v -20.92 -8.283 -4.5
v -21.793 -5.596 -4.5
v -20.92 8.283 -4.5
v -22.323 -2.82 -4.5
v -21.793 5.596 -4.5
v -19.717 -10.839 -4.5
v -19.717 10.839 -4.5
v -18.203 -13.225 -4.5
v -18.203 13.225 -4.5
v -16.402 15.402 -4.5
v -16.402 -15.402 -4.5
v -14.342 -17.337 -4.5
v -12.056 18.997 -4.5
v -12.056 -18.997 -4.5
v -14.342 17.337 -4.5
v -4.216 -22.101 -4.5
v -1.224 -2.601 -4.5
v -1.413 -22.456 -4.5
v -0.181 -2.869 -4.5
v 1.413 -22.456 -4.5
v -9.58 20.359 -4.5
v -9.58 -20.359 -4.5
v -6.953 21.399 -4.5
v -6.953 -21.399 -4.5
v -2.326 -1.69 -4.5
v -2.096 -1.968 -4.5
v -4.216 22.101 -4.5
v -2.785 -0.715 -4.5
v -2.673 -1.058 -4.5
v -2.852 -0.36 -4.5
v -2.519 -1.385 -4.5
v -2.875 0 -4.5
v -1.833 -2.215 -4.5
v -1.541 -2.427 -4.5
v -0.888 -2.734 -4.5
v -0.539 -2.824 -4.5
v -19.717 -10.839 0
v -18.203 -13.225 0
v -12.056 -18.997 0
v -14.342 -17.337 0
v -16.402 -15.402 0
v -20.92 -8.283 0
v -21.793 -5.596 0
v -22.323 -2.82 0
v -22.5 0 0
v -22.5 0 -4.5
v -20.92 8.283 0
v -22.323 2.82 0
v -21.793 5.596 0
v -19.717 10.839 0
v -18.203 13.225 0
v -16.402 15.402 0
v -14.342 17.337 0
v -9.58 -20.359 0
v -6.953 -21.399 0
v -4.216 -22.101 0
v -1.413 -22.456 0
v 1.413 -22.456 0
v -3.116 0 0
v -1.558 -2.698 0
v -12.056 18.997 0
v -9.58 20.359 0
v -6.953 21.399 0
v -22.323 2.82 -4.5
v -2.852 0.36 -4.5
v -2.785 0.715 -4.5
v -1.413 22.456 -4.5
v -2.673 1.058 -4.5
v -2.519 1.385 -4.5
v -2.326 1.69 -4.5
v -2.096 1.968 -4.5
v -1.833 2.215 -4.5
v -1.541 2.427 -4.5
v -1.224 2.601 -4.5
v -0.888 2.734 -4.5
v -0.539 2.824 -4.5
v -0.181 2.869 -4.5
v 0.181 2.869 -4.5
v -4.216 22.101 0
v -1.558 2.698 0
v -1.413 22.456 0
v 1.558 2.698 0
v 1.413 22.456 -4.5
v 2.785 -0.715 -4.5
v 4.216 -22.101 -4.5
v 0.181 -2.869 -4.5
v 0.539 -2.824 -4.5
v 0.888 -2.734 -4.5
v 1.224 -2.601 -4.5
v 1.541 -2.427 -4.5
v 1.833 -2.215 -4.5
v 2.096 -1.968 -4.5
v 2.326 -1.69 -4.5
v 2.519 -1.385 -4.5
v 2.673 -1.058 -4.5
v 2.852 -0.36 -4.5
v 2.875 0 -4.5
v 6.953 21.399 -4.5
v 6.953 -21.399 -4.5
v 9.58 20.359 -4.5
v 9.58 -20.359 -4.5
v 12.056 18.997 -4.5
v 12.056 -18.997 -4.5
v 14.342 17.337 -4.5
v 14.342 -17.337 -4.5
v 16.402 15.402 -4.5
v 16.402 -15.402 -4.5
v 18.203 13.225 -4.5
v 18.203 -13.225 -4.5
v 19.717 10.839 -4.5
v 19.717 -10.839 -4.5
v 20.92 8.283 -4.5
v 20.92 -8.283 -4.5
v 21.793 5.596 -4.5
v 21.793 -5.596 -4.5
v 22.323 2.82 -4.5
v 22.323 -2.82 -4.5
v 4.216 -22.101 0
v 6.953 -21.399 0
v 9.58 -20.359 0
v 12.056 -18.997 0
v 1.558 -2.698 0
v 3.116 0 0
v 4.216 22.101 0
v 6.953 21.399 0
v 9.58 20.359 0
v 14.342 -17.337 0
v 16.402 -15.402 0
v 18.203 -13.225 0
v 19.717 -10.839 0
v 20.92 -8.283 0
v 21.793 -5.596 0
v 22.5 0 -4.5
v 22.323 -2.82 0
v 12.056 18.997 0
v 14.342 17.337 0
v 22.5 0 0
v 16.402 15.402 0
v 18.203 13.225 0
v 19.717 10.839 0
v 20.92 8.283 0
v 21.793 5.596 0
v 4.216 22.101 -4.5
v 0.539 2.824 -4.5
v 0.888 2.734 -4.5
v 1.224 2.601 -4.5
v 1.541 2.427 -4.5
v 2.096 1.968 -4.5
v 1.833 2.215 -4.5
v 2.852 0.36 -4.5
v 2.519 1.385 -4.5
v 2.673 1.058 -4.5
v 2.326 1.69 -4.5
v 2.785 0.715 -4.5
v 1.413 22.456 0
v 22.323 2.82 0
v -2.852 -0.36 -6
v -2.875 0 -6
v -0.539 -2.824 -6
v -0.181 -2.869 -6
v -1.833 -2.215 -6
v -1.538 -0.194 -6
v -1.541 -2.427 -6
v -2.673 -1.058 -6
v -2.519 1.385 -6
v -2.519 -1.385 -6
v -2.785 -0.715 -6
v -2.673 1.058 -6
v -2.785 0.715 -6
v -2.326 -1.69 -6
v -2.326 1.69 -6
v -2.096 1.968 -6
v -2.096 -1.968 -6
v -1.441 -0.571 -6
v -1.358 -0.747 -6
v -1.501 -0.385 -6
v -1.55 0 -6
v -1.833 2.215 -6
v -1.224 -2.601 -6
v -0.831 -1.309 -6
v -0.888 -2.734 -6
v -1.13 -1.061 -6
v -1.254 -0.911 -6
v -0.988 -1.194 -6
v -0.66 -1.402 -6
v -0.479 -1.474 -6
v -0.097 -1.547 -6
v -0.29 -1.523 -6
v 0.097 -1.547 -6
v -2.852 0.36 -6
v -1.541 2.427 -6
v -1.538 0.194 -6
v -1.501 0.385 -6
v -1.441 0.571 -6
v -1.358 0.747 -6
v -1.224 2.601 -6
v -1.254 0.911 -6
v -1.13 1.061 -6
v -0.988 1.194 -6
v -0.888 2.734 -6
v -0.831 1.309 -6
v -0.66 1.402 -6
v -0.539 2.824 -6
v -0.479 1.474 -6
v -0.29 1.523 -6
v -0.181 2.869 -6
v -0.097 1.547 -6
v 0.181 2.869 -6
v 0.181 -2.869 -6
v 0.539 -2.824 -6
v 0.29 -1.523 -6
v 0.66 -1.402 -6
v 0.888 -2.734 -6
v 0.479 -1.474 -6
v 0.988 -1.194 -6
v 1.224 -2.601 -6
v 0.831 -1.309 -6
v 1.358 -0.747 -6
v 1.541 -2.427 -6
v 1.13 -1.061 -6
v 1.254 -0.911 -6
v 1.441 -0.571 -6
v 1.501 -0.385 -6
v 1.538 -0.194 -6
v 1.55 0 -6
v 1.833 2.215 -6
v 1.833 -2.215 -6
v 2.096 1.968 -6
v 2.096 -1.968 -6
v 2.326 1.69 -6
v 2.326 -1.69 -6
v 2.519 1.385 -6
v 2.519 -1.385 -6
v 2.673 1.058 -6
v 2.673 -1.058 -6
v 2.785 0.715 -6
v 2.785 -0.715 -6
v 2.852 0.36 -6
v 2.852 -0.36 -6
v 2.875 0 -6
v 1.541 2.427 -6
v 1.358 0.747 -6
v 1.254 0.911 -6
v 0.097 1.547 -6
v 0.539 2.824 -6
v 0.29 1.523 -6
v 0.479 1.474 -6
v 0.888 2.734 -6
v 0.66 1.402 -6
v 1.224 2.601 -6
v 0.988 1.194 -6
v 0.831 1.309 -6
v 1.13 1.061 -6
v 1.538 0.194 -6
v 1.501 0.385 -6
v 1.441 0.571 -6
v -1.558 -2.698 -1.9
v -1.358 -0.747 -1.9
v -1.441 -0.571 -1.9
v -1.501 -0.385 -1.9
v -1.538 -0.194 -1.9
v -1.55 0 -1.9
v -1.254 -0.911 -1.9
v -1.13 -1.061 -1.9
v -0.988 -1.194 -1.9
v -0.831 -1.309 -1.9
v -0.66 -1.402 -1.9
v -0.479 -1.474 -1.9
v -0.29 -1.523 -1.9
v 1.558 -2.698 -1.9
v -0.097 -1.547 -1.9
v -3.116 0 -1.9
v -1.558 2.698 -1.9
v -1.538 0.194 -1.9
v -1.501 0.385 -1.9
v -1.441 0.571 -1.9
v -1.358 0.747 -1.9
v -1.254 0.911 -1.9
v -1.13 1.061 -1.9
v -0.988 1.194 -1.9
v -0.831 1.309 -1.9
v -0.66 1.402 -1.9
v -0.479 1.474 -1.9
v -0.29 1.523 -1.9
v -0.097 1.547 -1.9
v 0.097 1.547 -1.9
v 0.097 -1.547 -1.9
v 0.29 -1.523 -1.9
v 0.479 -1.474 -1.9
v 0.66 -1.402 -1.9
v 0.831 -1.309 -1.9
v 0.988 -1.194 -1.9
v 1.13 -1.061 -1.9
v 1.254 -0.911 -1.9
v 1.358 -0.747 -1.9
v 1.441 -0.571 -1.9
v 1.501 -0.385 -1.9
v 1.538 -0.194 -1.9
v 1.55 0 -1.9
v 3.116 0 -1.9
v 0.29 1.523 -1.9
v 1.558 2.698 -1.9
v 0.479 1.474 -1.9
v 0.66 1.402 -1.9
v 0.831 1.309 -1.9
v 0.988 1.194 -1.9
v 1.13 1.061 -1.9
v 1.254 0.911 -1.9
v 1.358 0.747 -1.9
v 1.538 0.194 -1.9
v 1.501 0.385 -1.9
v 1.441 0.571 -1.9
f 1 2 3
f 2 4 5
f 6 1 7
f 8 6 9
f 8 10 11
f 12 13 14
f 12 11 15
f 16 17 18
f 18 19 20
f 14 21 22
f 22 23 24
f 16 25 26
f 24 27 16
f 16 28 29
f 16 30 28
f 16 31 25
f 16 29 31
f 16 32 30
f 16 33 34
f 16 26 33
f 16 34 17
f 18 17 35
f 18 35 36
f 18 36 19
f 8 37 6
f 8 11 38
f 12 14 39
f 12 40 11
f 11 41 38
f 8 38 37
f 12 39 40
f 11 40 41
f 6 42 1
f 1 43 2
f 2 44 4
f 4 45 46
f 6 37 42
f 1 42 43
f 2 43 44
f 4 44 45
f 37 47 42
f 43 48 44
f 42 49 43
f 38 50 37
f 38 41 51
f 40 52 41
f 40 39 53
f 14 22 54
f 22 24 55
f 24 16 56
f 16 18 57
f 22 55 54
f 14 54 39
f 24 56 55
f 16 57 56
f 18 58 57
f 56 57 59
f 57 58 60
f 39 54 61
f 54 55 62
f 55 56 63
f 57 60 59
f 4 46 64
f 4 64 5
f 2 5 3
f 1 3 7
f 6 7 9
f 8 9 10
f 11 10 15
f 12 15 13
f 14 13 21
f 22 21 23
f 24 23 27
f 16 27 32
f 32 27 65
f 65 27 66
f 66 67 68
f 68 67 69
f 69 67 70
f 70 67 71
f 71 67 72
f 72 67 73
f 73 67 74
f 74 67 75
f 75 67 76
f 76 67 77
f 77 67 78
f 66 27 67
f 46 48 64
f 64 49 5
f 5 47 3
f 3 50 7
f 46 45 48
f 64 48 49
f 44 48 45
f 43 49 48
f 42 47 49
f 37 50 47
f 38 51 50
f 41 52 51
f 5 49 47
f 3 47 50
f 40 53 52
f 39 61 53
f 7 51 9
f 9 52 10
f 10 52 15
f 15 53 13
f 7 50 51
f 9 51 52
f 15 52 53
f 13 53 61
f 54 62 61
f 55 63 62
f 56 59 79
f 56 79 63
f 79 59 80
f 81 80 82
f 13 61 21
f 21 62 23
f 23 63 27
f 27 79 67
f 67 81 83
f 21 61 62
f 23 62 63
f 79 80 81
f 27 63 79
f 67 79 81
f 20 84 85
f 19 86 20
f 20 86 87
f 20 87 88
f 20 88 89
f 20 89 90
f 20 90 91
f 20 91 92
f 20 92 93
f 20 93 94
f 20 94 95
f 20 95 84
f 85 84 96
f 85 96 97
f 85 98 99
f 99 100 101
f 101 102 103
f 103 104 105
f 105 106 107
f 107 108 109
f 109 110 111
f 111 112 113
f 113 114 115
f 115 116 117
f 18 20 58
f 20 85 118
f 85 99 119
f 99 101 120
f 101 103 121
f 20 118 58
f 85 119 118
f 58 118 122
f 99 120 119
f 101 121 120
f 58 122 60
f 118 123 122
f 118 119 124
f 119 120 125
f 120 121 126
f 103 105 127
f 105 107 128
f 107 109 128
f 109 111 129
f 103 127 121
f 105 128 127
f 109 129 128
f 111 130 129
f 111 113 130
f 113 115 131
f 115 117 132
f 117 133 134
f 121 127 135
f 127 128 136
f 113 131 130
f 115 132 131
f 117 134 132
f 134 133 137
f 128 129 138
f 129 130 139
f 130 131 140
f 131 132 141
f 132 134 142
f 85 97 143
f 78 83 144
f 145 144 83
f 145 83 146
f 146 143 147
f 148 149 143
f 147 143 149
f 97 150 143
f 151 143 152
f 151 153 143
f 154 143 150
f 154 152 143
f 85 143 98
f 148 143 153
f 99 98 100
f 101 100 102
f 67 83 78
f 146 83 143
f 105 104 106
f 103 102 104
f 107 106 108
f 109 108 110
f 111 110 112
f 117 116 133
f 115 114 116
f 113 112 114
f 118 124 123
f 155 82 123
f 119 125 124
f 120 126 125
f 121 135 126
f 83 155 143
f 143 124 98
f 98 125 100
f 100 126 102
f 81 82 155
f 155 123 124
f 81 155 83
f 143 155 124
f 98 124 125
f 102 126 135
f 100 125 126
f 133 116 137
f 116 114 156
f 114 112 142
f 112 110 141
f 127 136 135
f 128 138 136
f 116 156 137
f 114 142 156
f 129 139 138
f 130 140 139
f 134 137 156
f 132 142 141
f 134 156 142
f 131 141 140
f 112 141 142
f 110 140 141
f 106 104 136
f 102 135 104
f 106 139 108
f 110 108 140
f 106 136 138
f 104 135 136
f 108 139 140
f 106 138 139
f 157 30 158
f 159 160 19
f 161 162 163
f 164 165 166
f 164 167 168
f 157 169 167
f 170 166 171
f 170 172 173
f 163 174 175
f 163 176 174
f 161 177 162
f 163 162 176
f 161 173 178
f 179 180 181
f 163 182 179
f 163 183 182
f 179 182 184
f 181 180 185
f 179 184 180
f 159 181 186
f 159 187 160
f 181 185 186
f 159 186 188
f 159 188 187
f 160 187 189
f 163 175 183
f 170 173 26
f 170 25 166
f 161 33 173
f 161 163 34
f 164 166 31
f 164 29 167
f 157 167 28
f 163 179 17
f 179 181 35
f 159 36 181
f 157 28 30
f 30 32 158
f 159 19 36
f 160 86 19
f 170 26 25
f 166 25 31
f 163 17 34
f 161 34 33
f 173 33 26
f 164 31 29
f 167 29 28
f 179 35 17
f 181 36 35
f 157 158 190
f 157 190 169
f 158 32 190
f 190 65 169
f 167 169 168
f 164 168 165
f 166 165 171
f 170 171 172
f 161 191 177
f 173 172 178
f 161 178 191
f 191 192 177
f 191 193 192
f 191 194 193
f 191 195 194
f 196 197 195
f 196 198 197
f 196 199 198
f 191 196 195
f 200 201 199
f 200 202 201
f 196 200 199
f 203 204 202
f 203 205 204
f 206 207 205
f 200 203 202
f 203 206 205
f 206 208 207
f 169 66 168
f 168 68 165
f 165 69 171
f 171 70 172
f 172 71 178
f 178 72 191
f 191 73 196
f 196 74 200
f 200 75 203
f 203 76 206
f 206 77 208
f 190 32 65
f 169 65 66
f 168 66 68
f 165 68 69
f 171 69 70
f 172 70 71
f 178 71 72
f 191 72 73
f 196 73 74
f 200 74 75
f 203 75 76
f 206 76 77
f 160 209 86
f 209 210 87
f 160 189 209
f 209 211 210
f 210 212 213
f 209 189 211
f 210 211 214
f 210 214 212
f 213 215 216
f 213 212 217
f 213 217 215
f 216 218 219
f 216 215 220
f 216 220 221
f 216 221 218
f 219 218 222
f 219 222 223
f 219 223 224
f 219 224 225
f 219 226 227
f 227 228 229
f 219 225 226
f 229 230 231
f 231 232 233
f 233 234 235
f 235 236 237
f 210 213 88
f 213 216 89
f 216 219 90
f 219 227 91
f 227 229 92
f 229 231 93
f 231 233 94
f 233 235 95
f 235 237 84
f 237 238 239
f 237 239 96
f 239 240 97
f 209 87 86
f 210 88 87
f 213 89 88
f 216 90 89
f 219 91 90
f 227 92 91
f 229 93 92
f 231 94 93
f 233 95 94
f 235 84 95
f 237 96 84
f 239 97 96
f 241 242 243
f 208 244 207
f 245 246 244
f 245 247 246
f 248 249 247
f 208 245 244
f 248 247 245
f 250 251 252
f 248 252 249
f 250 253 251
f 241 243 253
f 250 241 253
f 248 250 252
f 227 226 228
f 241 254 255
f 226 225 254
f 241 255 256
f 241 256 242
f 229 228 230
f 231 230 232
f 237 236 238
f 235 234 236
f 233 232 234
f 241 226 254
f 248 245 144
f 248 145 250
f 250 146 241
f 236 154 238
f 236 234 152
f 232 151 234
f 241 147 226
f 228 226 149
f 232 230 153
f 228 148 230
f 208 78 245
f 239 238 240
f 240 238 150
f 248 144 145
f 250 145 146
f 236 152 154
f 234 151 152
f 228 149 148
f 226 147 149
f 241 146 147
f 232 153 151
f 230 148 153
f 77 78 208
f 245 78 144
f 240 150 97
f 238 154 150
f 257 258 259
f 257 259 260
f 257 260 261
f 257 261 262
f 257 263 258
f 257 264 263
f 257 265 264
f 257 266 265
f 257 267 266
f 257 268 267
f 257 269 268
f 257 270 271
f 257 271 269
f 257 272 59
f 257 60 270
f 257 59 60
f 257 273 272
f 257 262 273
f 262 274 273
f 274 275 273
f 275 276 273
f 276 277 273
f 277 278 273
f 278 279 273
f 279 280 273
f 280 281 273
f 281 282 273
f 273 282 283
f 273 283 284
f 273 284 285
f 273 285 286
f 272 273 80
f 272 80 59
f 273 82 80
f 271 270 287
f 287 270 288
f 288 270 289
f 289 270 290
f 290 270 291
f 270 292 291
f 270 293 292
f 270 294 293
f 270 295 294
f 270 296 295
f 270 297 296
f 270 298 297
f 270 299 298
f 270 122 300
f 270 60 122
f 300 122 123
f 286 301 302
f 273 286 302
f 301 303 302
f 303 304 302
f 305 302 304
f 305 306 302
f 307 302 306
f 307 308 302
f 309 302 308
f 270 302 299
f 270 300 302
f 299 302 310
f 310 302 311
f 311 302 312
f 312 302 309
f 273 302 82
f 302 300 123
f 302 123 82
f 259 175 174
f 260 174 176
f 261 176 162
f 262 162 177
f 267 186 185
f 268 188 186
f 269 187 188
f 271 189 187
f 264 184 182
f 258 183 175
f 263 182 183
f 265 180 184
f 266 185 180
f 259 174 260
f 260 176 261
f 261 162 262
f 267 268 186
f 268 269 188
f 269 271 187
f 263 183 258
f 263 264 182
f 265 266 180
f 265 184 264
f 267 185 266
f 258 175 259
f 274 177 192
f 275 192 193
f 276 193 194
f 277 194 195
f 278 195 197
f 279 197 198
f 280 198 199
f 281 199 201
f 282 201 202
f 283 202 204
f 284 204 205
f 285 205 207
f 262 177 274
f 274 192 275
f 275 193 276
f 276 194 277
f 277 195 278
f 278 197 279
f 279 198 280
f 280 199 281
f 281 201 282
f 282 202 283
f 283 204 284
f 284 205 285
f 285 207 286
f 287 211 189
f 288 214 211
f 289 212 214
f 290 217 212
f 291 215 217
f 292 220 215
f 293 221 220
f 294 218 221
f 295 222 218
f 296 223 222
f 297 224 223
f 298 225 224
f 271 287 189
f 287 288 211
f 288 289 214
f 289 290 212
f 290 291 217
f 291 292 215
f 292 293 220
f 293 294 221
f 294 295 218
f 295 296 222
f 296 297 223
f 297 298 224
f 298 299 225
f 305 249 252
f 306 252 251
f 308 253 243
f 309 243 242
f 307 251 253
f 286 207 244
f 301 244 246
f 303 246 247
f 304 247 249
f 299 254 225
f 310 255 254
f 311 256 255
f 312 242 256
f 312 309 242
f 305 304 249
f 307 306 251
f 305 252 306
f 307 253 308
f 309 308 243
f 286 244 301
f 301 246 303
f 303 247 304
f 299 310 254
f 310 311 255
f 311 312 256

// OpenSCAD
$fn = 50;

difference() {
	union() {
		translate(v = [0, 0, -4.5]) {
			cylinder(h = 4.5, r = 22.5);
		}
		#translate(v = [0, 0, -6.0]) {
			cylinder(h = 6, r = 2.875);
		}
	}
	union() {
		translate(v = [0, 0, 0]) {
			rotate(a = [0, 0, 0]) {
				difference() {
					union() {
						translate(v = [0, 0, -1.9]) {
							linear_extrude(height = 1.9) {
								polygon(points = [[3.1158, 0.0], [1.5579000000000005, 2.698361953111554], [-1.5578999999999994, 2.6983619531115544], [-3.1158, 3.815754496783323e-16], [-1.5579000000000014, -2.6983619531115535], [1.557899999999998, -2.6983619531115552]]);
							}
						}
					}
					union();
				}
			}
		}
		#translate(v = [0, 0, -100.0]) {
			cylinder(h = 200, r = 1.55);
		}
	}
}
